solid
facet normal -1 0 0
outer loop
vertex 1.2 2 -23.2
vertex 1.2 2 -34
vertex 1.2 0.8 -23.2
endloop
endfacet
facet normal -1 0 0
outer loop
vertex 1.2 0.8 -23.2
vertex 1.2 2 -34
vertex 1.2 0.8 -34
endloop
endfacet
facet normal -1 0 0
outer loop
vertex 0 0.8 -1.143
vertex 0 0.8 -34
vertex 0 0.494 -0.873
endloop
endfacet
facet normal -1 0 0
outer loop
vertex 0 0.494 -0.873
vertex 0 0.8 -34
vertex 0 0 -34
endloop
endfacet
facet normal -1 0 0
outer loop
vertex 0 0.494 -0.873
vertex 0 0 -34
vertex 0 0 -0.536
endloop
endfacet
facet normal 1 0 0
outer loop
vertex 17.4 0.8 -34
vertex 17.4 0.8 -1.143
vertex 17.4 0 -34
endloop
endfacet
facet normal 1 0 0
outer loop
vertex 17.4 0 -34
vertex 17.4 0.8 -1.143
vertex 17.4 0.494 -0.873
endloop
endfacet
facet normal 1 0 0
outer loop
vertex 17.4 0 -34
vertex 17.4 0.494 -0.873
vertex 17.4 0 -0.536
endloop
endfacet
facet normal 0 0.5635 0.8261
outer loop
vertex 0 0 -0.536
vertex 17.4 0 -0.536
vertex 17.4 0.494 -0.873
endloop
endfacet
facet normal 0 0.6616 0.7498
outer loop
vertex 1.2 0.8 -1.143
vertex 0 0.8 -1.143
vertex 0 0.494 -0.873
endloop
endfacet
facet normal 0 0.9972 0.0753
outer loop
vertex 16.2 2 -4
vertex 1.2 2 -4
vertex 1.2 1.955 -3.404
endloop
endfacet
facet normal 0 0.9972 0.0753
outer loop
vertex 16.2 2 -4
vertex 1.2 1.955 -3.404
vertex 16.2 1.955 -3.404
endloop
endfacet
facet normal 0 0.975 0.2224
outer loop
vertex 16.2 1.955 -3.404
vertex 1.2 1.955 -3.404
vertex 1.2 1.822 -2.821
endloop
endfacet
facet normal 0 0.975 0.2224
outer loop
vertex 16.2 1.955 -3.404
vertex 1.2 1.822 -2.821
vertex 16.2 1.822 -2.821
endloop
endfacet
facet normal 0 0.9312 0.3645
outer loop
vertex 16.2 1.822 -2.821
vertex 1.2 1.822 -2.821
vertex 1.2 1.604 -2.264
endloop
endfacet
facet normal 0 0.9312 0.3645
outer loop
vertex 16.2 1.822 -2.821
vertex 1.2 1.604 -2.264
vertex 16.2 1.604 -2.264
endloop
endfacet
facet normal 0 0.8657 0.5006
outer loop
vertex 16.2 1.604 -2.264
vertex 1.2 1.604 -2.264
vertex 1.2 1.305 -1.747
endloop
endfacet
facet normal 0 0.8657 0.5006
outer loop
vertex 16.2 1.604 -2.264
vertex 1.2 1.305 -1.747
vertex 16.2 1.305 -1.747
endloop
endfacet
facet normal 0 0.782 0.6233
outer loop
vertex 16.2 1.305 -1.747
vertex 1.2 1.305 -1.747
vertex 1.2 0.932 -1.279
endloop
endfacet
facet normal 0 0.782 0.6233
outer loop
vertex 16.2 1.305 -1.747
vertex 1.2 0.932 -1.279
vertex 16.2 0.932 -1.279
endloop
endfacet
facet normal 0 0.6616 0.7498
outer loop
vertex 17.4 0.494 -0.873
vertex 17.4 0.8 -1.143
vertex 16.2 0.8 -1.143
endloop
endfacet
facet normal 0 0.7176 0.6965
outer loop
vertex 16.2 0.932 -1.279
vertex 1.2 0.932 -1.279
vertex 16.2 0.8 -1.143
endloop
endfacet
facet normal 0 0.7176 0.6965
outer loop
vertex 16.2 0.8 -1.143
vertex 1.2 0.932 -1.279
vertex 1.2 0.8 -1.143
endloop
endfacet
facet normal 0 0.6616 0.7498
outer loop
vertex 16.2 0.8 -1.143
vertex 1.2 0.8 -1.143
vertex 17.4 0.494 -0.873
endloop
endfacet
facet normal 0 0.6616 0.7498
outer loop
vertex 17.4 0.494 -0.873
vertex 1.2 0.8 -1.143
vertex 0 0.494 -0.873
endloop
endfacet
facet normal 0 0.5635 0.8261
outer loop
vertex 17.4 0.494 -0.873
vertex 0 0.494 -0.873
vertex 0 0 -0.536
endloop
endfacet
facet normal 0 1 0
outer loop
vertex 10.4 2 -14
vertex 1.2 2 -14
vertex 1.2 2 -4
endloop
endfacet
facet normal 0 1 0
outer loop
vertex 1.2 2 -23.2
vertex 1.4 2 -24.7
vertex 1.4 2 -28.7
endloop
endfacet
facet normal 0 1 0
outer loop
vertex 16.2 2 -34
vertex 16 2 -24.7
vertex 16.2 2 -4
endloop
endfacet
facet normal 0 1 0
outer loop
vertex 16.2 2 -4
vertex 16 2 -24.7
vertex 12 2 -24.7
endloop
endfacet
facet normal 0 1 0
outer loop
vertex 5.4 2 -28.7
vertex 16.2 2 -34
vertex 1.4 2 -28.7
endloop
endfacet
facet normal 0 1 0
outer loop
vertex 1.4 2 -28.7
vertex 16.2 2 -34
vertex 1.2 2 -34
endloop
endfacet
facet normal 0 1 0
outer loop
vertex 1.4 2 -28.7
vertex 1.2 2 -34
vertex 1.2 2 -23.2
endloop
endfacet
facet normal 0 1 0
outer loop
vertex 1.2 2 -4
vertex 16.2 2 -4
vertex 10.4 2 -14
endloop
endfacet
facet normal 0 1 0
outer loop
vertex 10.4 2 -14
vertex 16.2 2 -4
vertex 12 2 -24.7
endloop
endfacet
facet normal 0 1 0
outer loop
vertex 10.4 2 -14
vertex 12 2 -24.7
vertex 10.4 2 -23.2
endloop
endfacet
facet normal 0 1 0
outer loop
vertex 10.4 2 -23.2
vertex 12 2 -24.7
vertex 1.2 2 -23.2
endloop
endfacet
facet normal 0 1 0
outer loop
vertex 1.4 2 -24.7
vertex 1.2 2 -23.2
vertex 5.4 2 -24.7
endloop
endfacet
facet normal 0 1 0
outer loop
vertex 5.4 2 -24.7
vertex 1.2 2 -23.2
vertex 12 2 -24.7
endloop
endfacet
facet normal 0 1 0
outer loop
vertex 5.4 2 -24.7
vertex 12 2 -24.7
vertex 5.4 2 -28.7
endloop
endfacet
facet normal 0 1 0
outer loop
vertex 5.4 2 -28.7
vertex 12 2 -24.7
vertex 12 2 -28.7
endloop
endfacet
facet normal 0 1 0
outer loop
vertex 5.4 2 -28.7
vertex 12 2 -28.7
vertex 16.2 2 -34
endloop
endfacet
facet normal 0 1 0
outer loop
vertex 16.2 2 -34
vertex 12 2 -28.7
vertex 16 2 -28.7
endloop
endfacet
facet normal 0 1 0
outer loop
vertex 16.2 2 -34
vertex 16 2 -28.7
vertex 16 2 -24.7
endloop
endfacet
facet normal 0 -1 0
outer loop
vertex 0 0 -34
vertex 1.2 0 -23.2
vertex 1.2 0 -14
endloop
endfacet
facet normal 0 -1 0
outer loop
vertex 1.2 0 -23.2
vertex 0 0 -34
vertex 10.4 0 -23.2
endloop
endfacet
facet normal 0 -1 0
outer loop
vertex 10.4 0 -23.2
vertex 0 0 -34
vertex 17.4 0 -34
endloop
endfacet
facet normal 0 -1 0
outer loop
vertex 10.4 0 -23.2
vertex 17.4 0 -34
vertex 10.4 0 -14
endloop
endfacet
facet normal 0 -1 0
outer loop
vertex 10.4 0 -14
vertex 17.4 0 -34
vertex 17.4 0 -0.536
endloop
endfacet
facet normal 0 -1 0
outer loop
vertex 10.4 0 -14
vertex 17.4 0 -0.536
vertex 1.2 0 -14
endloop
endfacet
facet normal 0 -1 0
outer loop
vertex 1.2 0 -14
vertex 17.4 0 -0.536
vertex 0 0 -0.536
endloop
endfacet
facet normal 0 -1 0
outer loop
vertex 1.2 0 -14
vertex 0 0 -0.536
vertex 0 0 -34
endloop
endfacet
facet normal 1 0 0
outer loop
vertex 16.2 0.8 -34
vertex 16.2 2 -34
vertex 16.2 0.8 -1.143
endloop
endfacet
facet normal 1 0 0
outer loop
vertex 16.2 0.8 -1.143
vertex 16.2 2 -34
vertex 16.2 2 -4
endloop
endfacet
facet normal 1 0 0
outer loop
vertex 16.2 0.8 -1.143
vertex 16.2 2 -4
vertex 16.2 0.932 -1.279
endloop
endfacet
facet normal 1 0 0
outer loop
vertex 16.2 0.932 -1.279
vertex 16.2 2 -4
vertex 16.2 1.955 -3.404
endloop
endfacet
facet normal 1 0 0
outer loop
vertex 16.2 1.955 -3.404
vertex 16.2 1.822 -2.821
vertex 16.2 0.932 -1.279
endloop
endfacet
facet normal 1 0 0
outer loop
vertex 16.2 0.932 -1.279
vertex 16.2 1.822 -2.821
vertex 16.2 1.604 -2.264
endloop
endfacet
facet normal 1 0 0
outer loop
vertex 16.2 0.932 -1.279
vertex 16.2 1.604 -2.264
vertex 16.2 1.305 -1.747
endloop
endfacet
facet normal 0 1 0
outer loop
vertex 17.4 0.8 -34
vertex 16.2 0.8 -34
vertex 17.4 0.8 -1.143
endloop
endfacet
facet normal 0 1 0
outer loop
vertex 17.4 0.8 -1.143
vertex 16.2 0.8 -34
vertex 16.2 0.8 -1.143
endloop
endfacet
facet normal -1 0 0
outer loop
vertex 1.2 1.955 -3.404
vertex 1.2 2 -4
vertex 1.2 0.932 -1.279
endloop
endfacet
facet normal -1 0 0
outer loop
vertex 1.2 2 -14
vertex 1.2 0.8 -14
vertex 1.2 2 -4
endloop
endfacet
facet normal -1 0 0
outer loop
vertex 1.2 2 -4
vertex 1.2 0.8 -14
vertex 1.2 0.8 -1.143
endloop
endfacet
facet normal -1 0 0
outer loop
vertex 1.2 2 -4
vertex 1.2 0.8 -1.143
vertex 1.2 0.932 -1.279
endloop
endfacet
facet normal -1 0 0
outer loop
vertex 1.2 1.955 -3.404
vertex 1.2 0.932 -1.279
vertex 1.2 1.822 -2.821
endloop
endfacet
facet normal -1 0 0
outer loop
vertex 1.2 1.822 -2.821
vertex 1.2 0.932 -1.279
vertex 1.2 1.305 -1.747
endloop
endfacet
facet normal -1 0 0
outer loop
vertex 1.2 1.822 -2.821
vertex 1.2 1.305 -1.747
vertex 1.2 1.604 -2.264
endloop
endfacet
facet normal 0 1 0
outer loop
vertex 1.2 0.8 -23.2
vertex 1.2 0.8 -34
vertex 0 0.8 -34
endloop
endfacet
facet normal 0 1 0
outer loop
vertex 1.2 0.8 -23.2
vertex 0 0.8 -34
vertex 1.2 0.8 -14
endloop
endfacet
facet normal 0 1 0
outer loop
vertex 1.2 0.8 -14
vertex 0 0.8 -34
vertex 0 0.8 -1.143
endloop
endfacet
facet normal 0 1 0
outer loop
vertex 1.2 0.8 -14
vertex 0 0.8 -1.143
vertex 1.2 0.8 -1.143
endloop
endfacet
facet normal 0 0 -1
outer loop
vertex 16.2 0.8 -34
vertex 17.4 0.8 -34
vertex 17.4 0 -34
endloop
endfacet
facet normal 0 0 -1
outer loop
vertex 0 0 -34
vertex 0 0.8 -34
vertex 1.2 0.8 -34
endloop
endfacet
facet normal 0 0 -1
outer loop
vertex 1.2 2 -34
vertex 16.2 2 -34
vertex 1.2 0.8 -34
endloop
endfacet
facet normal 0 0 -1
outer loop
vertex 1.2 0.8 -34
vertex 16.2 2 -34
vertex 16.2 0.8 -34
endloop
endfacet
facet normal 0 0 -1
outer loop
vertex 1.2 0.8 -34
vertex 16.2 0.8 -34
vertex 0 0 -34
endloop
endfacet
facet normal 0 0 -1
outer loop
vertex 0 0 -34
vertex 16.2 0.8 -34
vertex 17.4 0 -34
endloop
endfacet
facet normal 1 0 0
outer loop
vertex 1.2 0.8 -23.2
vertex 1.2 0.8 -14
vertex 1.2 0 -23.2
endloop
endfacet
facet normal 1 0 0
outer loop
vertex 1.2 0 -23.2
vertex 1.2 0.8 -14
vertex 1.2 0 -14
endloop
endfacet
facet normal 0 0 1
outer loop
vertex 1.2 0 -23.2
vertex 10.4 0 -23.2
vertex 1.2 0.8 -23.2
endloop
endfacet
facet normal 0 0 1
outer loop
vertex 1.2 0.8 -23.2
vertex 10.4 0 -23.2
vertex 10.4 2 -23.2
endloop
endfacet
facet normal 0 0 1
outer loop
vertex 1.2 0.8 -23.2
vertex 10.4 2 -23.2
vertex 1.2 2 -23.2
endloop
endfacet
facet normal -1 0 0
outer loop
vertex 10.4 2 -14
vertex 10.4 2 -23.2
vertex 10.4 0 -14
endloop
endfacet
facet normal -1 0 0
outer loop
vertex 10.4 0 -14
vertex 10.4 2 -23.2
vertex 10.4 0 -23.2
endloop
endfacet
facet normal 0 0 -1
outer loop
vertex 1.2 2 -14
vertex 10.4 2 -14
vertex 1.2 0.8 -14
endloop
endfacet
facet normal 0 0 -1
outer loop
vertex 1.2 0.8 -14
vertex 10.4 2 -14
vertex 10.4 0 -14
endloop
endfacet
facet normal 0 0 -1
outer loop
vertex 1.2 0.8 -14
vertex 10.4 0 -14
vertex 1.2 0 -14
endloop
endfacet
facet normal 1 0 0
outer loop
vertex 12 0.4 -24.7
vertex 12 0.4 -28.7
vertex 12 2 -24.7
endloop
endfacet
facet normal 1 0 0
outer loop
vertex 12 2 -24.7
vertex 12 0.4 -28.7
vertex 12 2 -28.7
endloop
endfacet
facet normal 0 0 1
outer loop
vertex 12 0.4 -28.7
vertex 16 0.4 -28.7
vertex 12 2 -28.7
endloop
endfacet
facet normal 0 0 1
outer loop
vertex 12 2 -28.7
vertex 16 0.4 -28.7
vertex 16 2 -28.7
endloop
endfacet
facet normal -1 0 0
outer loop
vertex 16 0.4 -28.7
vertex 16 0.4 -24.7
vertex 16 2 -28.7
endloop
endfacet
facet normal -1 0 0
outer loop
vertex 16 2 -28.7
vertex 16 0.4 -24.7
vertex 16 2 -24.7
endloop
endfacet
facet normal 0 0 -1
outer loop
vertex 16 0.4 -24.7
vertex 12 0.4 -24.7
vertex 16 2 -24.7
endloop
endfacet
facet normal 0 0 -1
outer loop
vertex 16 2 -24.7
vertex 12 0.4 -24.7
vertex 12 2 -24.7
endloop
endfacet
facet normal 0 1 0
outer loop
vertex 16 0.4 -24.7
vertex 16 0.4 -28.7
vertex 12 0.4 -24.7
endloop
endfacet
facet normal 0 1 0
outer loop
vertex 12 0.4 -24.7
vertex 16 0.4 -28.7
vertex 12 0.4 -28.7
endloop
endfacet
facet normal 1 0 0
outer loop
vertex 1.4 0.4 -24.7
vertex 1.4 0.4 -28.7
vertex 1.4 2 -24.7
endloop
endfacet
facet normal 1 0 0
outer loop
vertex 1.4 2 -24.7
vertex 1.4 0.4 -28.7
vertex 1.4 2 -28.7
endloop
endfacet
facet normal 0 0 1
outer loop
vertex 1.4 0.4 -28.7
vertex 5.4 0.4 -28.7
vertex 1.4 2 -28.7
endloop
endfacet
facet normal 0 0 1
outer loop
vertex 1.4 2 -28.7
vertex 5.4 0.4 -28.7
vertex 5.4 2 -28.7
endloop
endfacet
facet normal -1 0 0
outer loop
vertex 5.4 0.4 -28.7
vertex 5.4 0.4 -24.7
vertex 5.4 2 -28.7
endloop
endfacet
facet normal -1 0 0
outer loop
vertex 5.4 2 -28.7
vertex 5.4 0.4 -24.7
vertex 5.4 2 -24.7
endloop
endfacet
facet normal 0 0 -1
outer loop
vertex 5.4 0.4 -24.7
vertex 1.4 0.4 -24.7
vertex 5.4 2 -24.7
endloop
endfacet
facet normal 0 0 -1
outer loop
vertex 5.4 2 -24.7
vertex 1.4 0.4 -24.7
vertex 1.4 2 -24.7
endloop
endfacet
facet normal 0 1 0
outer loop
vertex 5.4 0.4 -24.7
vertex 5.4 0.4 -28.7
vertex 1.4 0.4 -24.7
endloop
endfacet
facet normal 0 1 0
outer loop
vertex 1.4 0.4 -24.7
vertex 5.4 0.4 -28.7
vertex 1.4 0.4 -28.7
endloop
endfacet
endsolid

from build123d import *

# Parameters (mm, degrees)
SKICA1_W                 = 17.4
SKICA1_H                 = 27
P_IDAT_VYSUNUT_M1_DEPTH  = 2
SKICA2_W                 = 17.4
SKICA2_H                 = 27
P_IDAT_VYSUNUT_M2_DEPTH  = 6
ZAOBLIT1_R               = 4
SKICA3_W                 = 17.4
SKICA3_H                 = 27
ODEBRAT_VYSUNUT_M1_DEPTH = 6
SKICA4_W                 = 1.2
SKICA4_H                 = 26.464101615
ODEBRAT_VYSUNUT_M2_DEPTH = 1.2
SKICA7_W                 = 15
SKICA7_H                 = 1.2
SKICA7_W_2               = 17.4
SKICA7_H_2               = 0.8
P_IDAT_VYSUNUT_M3_DEPTH  = 7
SKICA8_W                 = 9.2
SKICA8_H                 = 9.2
ODEBRAT_VYSUNUT_M5_DEPTH = 7
SKICA10_W                = 4
SKICA10_H                = 4
ODEBRAT_VYSUNUT_M6_DEPTH = 1.6


with BuildPart() as part:
    # Skica1 → Přidat vysunutím1 (new body)
    with BuildSketch(Plane(origin=(0, 0, 0), x_dir=(1, 0, 0), z_dir=(0, 1, 0))):
        with Locations((8.7, 13.5)):
            Rectangle(SKICA1_W, SKICA1_H)
    extrude(amount=P_IDAT_VYSUNUT_M1_DEPTH)

    # Skica2 → Přidat vysunutím2 (add)
    with BuildSketch(Plane.XZ):
        with Locations((8.7, -13.5)):
            Rectangle(SKICA2_W, SKICA2_H)
    extrude(amount=P_IDAT_VYSUNUT_M2_DEPTH)

    # Zaoblit1
    zaoblit1_edges = [part.edges().sort_by_distance(p)[0] for p in [
        (8.7, 2, 0),
    ]]
    fillet(zaoblit1_edges, radius=ZAOBLIT1_R)

    # Skica3 → Odebrat vysunutím1 (cut)
    with BuildSketch(Plane.XZ.offset(6)):
        with Locations((8.7, -13.5)):
            Rectangle(SKICA3_W, SKICA3_H)
    extrude(amount=-ODEBRAT_VYSUNUT_M1_DEPTH, mode=Mode.SUBTRACT)

    # Skica4 → Odebrat vysunutím2 (cut)
    with BuildSketch(Plane(origin=(0, 2, 0), x_dir=(1, 0, 0), z_dir=(0, 1, 0))):
        with Locations((0.6, 13.767949192)):
            Rectangle(SKICA4_W, SKICA4_H)
        with Locations((16.8, 13.767949192)):
            Rectangle(SKICA4_W, SKICA4_H)
    extrude(amount=-ODEBRAT_VYSUNUT_M2_DEPTH, mode=Mode.SUBTRACT)

    # Skica7 → Přidat vysunutím3 (add)
    with BuildSketch(Plane(origin=(0, 0, -27), x_dir=(-1, 0, 0), z_dir=(0, 0, -1))):
        with Locations((-8.7, 1.4)):
            Rectangle(SKICA7_W, SKICA7_H)
        with Locations((-8.7, 0.4)):
            Rectangle(SKICA7_W_2, SKICA7_H_2)
    extrude(amount=P_IDAT_VYSUNUT_M3_DEPTH)

    # Skica8 → Odebrat vysunutím5 (cut)
    with BuildSketch(Plane(origin=(0, 2, 0), x_dir=(1, 0, 0), z_dir=(0, 1, 0))):
        with Locations((5.8, 18.6)):
            Rectangle(SKICA8_W, SKICA8_H)
    extrude(amount=-ODEBRAT_VYSUNUT_M5_DEPTH, mode=Mode.SUBTRACT)

    # Skica10 → Odebrat vysunutím6 (cut)
    with BuildSketch(Plane(origin=(0, 2, 0), x_dir=(1, 0, 0), z_dir=(0, 1, 0))):
        with Locations((3.4, 26.7)):
            Rectangle(SKICA10_W, SKICA10_H)
        with Locations((14, 26.7)):
            Rectangle(SKICA10_W, SKICA10_H)
    extrude(amount=-ODEBRAT_VYSUNUT_M6_DEPTH, mode=Mode.SUBTRACT)


solid = part.part
